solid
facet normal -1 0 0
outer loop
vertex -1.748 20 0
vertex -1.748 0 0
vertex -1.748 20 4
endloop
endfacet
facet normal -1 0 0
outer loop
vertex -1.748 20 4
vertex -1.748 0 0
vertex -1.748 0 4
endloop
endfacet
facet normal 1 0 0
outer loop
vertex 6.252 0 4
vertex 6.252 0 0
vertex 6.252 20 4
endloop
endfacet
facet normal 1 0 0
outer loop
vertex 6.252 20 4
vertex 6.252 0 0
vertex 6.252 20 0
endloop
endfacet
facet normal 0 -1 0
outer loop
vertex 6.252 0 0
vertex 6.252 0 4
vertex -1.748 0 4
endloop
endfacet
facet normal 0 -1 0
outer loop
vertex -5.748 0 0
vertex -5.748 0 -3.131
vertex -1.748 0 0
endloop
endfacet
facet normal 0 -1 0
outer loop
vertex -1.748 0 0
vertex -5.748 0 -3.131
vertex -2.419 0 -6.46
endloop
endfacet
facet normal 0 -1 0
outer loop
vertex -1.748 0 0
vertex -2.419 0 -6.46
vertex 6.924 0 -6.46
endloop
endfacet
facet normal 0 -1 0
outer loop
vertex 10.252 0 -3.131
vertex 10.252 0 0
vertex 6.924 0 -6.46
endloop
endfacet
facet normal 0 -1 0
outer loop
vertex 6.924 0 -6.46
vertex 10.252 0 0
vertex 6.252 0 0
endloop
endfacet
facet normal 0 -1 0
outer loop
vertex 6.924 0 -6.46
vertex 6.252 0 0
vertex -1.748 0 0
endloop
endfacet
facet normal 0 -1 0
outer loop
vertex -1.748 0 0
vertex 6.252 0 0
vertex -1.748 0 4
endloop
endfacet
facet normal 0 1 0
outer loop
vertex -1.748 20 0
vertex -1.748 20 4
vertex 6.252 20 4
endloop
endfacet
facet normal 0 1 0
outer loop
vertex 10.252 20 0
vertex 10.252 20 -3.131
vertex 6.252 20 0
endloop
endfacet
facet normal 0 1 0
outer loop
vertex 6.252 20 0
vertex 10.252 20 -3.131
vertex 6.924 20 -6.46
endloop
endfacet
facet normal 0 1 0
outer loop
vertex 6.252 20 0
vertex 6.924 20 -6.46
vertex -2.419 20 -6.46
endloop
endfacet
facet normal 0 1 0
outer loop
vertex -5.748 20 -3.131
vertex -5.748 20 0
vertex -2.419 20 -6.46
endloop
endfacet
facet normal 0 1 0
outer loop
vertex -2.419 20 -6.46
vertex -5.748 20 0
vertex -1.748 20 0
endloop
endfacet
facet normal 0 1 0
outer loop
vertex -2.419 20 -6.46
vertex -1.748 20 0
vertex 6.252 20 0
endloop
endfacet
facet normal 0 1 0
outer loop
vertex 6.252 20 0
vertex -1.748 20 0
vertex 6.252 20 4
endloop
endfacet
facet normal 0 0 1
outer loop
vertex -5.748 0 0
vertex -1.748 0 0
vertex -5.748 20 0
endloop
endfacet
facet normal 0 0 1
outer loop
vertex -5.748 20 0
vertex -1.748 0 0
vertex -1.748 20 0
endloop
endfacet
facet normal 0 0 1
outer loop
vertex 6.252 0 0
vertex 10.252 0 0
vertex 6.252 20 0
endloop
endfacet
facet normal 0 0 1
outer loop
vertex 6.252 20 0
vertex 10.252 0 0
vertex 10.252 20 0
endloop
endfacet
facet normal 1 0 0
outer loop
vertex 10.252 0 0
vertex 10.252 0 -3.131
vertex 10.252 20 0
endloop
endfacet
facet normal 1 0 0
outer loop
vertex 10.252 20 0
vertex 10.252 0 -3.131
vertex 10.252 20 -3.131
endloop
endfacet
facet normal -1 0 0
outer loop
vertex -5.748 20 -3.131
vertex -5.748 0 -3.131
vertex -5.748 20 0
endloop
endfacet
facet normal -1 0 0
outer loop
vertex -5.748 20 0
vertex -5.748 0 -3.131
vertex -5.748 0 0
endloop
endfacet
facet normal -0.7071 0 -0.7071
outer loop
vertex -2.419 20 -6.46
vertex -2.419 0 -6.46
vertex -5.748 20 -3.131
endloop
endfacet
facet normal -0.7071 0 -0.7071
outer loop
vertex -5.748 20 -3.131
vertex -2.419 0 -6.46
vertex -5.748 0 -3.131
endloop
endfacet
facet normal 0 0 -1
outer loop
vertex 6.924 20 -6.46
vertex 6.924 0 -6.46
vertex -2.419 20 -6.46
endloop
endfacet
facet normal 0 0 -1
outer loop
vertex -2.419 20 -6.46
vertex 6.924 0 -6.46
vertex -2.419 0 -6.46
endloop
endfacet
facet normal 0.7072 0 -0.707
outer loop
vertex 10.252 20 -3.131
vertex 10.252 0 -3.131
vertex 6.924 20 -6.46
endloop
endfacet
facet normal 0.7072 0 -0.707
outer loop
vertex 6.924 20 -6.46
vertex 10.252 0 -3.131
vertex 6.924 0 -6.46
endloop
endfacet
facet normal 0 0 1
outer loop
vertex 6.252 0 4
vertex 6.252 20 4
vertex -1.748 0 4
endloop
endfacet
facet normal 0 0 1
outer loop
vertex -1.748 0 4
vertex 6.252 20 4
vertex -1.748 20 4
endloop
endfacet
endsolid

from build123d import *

# Parameters (mm, degrees)
BOSS_EXTRUDE1_DEPTH          = 40
SKETCH2_W                    = 3.5
SKETCH2_H                    = 40
BOSS_EXTRUDE2_DEPTH          = 5
SKETCH4_R                    = 2
CUT_EXTRUDE1_DEPTH           = 7
SKETCH5_R                    = 3.5
CUT_EXTRUDE2_DEPTH           = 3
CUT_EXTRUDE2_DRAFT           = -27
CUT_EXTRUDE2_PROFILE_2_DEPTH = 3
CUT_EXTRUDE2_PROFILE_2_DRAFT = -27
BOSS_EXTRUDE3_DEPTH          = 3
SKETCH9_W                    = 13
SKETCH9_H                    = 40
CUT_EXTRUDE4_DEPTH           = 4.702585656
SKETCH10_W                   = 15
SKETCH10_H                   = 40
BOSS_EXTRUDE4_DEPTH          = 2.5
SKETCH11_W                   = 1.5
SKETCH11_H                   = 2.202585656
BOSS_EXTRUDE7_DEPTH          = 40
BOSS_EXTRUDE8_DEPTH          = 0.625841469
SKETCH13_R                   = 2
CUT_EXTRUDE5_DEPTH           = 10
SKETCH14_W                   = 2.5
SKETCH14_H                   = 40
BOSS_EXTRUDE9_DEPTH          = 0.5
SKETCH15_W                   = 2.5
SKETCH15_H                   = 40
BOSS_EXTRUDE10_DEPTH         = 0.5
BOSS_EXTRUDE11_DEPTH         = 40
BOSS_EXTRUDE12_DEPTH         = 1.13137085
SKETCH18_R                   = 2
CUT_EXTRUDE6_DEPTH           = 10
SKETCH19_R                   = 3
CUT_EXTRUDE7_DEPTH           = 3
CUT_EXTRUDE7_DRAFT           = -19
CUT_EXTRUDE7_PROFILE_2_DEPTH = 3
CUT_EXTRUDE7_PROFILE_2_DRAFT = -19
SKETCH20_W                   = 5
SKETCH20_H                   = 40
BOSS_EXTRUDE13_DEPTH         = 0.5
SKETCH21_W                   = 5
SKETCH21_H                   = 40
BOSS_EXTRUDE14_DEPTH         = 0.5
SKETCH22_W                   = 7
SKETCH22_H                   = 6.5
SKETCH22_W_2                 = 7.5
CUT_EXTRUDE8_DEPTH           = 20
SKETCH23_R                   = 2
BOSS_EXTRUDE15_DEPTH         = 6.459797975
SKETCH24_R                   = 3
BOSS_EXTRUDE16_DEPTH         = 11.459797975
SKETCH25_W                   = 4
SKETCH25_H                   = 20
CUT_EXTRUDE9_DEPTH           = 20
SKETCH26_W                   = 8
SKETCH26_H                   = 20
CUT_EXTRUDE10_DEPTH          = 1


with BuildPart() as part:
    # Sketch1 → Boss-Extrude1 (new body)
    with BuildSketch(Plane(origin=(0, 0, 0), x_dir=(1, 0, 0), z_dir=(0, 1, 0))):
        Polygon((-4.247892457, 4.702585656), (8.752107543, 4.702585656), (8.752107543, 1.702585656), (7.049521887, 0), (-2.545306801, 0), (-4.247892457, 1.702585656), align=None)
    extrude(amount=BOSS_EXTRUDE1_DEPTH)

    # Sketch2 → Boss-Extrude2 (add)
    with BuildSketch(Plane.XY):
        with Locations((4.002107543, 20)):
            Rectangle(SKETCH2_W, SKETCH2_H)
        with Locations((0.502107543, 20)):
            Rectangle(SKETCH2_W, SKETCH2_H)
    extrude(amount=BOSS_EXTRUDE2_DEPTH)

    # Sketch4 → Cut-Extrude1 (cut)
    with BuildSketch(Plane.XY.offset(5)):
        with Locations((2.252107543, 30)):
            Circle(SKETCH4_R)
        with Locations((2.252107543, 10)):
            Circle(SKETCH4_R)
    extrude(amount=-CUT_EXTRUDE1_DEPTH, mode=Mode.SUBTRACT)


with BuildPart() as cut_extrude2_tool:
    # Sketch5 → Cut-Extrude2 (with draft: the straight prism first)
    with BuildSketch(Plane(origin=(0, 0, -4.702585656), x_dir=(-1, 0, 0), z_dir=(0, 0, -1))):
        with Locations((-2.252107543, 30)):
            Circle(SKETCH5_R)
    extrude(amount=-CUT_EXTRUDE2_DEPTH)
    # Cut-Extrude2: the draft: its side faces are tilted about the plane it starts from
    cut_extrude2_sides = [cut_extrude2_tool.faces().sort_by_distance(p)[0] for p in [
        (5.752107543, 30, -3.202585656),
    ]]
    draft(cut_extrude2_sides, Plane(origin=(0, 0, -4.702585656), x_dir=(-1, 0, 0), z_dir=(0, 0, -1)), CUT_EXTRUDE2_DRAFT)


with BuildPart() as part_1:
    add(part.part)

    # Cut-Extrude2: cut by cut_extrude2_tool
    add(cut_extrude2_tool.part, mode=Mode.SUBTRACT)


with BuildPart() as cut_extrude2_profile_2_tool:
    # Sketch5 → Cut-Extrude2 profile 2 (with draft: the straight prism first)
    with BuildSketch(Plane(origin=(0, 0, -4.702585656), x_dir=(-1, 0, 0), z_dir=(0, 0, -1))):
        with Locations((-2.252107543, 10)):
            Circle(SKETCH5_R)
    extrude(amount=-CUT_EXTRUDE2_PROFILE_2_DEPTH)
    # Cut-Extrude2 profile 2: the draft: its side faces are tilted about the plane it starts from
    cut_extrude2_profile_2_sides = [cut_extrude2_profile_2_tool.faces().sort_by_distance(p)[0] for p in [
        (5.752107543, 10, -3.202585656),
    ]]
    draft(cut_extrude2_profile_2_sides, Plane(origin=(0, 0, -4.702585656), x_dir=(-1, 0, 0), z_dir=(0, 0, -1)), CUT_EXTRUDE2_PROFILE_2_DRAFT)


with BuildPart() as part_2:
    add(part_1.part)

    # Cut-Extrude2 profile 2: cut by cut_extrude2_profile_2_tool
    add(cut_extrude2_profile_2_tool.part, mode=Mode.SUBTRACT)

    # Sketch7 → Boss-Extrude3 (add)
    with BuildSketch(Plane(origin=(0, 0, -4.702585656), x_dir=(-1, 0, 0), z_dir=(0, 0, -1))):
        Polygon((1.247892457, 46.5), (-5.752107543, 46.5), (-5.752107543, 40), (-4.252107543, 40), (-4.252107543, 45), (-0.252107543, 45), (-0.252107543, 43.275204256), (-0.252107543, 40), (1.247892457, 40), align=None)
        Polygon((-4.252107543, 0), (-5.752107543, 0), (-5.752107543, -6.5), (1.247892457, -6.5), (1.247892457, 0), (-0.252107543, 0), (-0.252107543, -5), (-4.252107543, -5), align=None)
    extrude(amount=-BOSS_EXTRUDE3_DEPTH)

    # Sketch9 → Cut-Extrude4 (cut)
    with BuildSketch(Plane(origin=(0, 0, -4.702585656), x_dir=(-1, 0, 0), z_dir=(0, 0, -1))):
        with Locations((-2.252107543, 20)):
            Rectangle(SKETCH9_W, SKETCH9_H)
    extrude(amount=-CUT_EXTRUDE4_DEPTH, mode=Mode.SUBTRACT)


with BuildPart() as cut_extrude4_piece_1:
    # of the separate pieces the step leaves, piece 1, a body of its own (cut_extrude4_pieces)
    add(part_2.part.solids().sort_by_distance((-1.247892457, 0, 0))[0])



with BuildPart() as cut_extrude4_piece_2:
    # of the separate pieces the step leaves, piece 2, a body of its own (cut_extrude4_pieces)
    add(part_2.part.solids().sort_by_distance((0.252107543, 40, -4.702585656))[0])


with BuildPart() as cut_extrude4_piece_3:
    # of the separate pieces the step leaves, piece 3, a body of its own (cut_extrude4_pieces)
    add(part_2.part.solids().sort_by_distance((-1.247892457, -6.5, -4.702585656))[0])


with BuildPart() as cut_extrude4_piece_1_1:
    add(cut_extrude4_piece_1.part)

    add(cut_extrude4_piece_2.part)  # Boss-Extrude4 merges Cut-Extrude4 piece 2

    add(cut_extrude4_piece_3.part)  # Boss-Extrude4 merges Cut-Extrude4 piece 3
    # Sketch10 → Boss-Extrude4 (add)
    with BuildSketch(Plane(origin=(0, 0, 0), x_dir=(-1, 0, 0), z_dir=(0, 0, -1))):
        with Locations((-2.252107543, 20)):
            Rectangle(SKETCH10_W, SKETCH10_H)
    extrude(amount=BOSS_EXTRUDE4_DEPTH)

    # Sketch11 → Boss-Extrude7 (add)
    with BuildSketch(Plane(origin=(0, 0, 0), x_dir=(1, 0, 0), z_dir=(0, 1, 0))):
        with Locations((5.002107543, 3.601292828)):
            Rectangle(SKETCH11_W, SKETCH11_H)
        Polygon((-2.419465332, 5.328427125), (-5.247892457, 2.5), (4.252107543, 2.5), (4.252107543, 4.702585656), (5.752107543, 4.702585656), (5.752107543, 2.5), (9.752107543, 2.5), (6.923680418, 5.328427125), align=None)
    extrude(amount=BOSS_EXTRUDE7_DEPTH)

    # Sketch12 → Boss-Extrude8 (add)
    with BuildSketch(Plane(origin=(0, 0, -4.702585656), x_dir=(-1, 0, 0), z_dir=(0, 0, -1))):
        Polygon((-5.752107543, 0), (-5.752107543, -6.5), (1.247892457, -6.5), (1.247892457, 0), (-0.252107543, 0), (-0.252107543, -5), (-4.252107543, -5), (-4.252107543, 0), align=None)
        Polygon((1.247892457, 46.5), (-5.752107543, 46.5), (-5.752107543, 40), (-4.252107543, 40), (-4.252107543, 45), (-0.252107543, 45), (-0.252107543, 40), (1.247892457, 40), align=None)
    extrude(amount=BOSS_EXTRUDE8_DEPTH)

    # Sketch13 → Cut-Extrude5 (cut)
    with BuildSketch(Plane.XY):
        with Locations((2.252107543, 30)):
            Circle(SKETCH13_R)
        with Locations((2.252107543, 10)):
            Circle(SKETCH13_R)
    extrude(amount=-CUT_EXTRUDE5_DEPTH, mode=Mode.SUBTRACT)

    # Sketch14 → Boss-Extrude9 (add)
    with BuildSketch(Plane(origin=(9.752107543, 0, 0), x_dir=(0, 0, -1), z_dir=(1, 0, 0))):
        with Locations((1.25, 20)):
            Rectangle(SKETCH14_W, SKETCH14_H)
    extrude(amount=BOSS_EXTRUDE9_DEPTH)

    # Sketch15 → Boss-Extrude10 (add)
    with BuildSketch(Plane.ZY.offset(5.247892457)):
        with Locations((-1.25, 20)):
            Rectangle(SKETCH15_W, SKETCH15_H)
    extrude(amount=BOSS_EXTRUDE10_DEPTH)

    # Sketch16 → Boss-Extrude11 (add)
    with BuildSketch(Plane.XZ):
        Polygon((-2.419465332, -5.328427125), (-5.247892457, -2.5), (-5.747892457, -2.5), (-5.747892457, -3.13137085), (-2.419465332, -6.459797975), (6.923680418, -6.459797975), (10.252107543, -3.13137085), (10.252107543, -2.5), (9.752107543, -2.5), (6.923680418, -5.328427125), (0.656985658, -5.328427125), align=None)
    extrude(amount=-BOSS_EXTRUDE11_DEPTH)

    # Sketch17 → Boss-Extrude12 (add)
    with BuildSketch(Plane(origin=(0, 0, -5.328427125), x_dir=(-1, 0, 0), z_dir=(0, 0, -1))):
        Polygon((-5.752107543, 0), (-5.752107543, -6.5), (1.247892457, -6.5), (1.247892457, 0), (0, 0), (0, -5), (-0.252107543, -5), (-4.252107543, -5), (-4.252107543, 0), align=None)
        Polygon((1.247892457, 46.5), (-5.752107543, 46.5), (-5.752107543, 40), (-4.252107543, 40), (-4.252107543, 44.953142187), (-0.252107543, 44.953142187), (-0.252107543, 40), (1.247892457, 40), align=None)
    extrude(amount=BOSS_EXTRUDE12_DEPTH)

    # Sketch18 → Cut-Extrude6 (cut)
    with BuildSketch(Plane.XY.offset(-5.328427125)):
        with Locations((2.252107543, 30)):
            Circle(SKETCH18_R)
        with Locations((2.252107543, 10)):
            Circle(SKETCH18_R)
    extrude(amount=-CUT_EXTRUDE6_DEPTH, mode=Mode.SUBTRACT)


with BuildPart() as cut_extrude7_tool:
    # Sketch19 → Cut-Extrude7 (with draft: the straight prism first)
    with BuildSketch(Plane(origin=(0, 0, -6.459797975), x_dir=(-1, 0, 0), z_dir=(0, 0, -1))):
        with Locations((-2.252107543, 30)):
            Circle(SKETCH19_R)
    extrude(amount=-CUT_EXTRUDE7_DEPTH)
    # Cut-Extrude7: the draft: its side faces are tilted about the plane it starts from
    cut_extrude7_sides = [cut_extrude7_tool.faces().sort_by_distance(p)[0] for p in [
        (5.252107543, 30, -4.959797975),
    ]]
    draft(cut_extrude7_sides, Plane(origin=(0, 0, -6.459797975), x_dir=(-1, 0, 0), z_dir=(0, 0, -1)), CUT_EXTRUDE7_DRAFT)


with BuildPart() as cut_extrude4_piece_1_2:
    add(cut_extrude4_piece_1_1.part)

    # Cut-Extrude7: cut by cut_extrude7_tool
    add(cut_extrude7_tool.part, mode=Mode.SUBTRACT)


with BuildPart() as cut_extrude7_profile_2_tool:
    # Sketch19 → Cut-Extrude7 profile 2 (with draft: the straight prism first)
    with BuildSketch(Plane(origin=(0, 0, -6.459797975), x_dir=(-1, 0, 0), z_dir=(0, 0, -1))):
        with Locations((-2.252107543, 10)):
            Circle(SKETCH19_R)
    extrude(amount=-CUT_EXTRUDE7_PROFILE_2_DEPTH)
    # Cut-Extrude7 profile 2: the draft: its side faces are tilted about the plane it starts from
    cut_extrude7_profile_2_sides = [cut_extrude7_profile_2_tool.faces().sort_by_distance(p)[0] for p in [
        (5.252107543, 10, -4.959797975),
    ]]
    draft(cut_extrude7_profile_2_sides, Plane(origin=(0, 0, -6.459797975), x_dir=(-1, 0, 0), z_dir=(0, 0, -1)), CUT_EXTRUDE7_PROFILE_2_DRAFT)


with BuildPart() as cut_extrude4_piece_1_3:
    add(cut_extrude4_piece_1_2.part)

    # Cut-Extrude7 profile 2: cut by cut_extrude7_profile_2_tool
    add(cut_extrude7_profile_2_tool.part, mode=Mode.SUBTRACT)

    # Sketch20 → Boss-Extrude13 (add)
    with BuildSketch(Plane.ZY.offset(1.247892457)):
        with Locations((2.5, 20)):
            Rectangle(SKETCH20_W, SKETCH20_H)
    extrude(amount=BOSS_EXTRUDE13_DEPTH)

    # Sketch21 → Boss-Extrude14 (add)
    with BuildSketch(Plane(origin=(5.752107543, 0, 0), x_dir=(0, 0, -1), z_dir=(1, 0, 0))):
        with Locations((-2.5, 20)):
            Rectangle(SKETCH21_W, SKETCH21_H)
    extrude(amount=BOSS_EXTRUDE14_DEPTH)

    # Sketch22 → Cut-Extrude8 (cut)
    with BuildSketch(Plane.XY.offset(5)):
        with Locations((2.252107543, 43.25)):
            Rectangle(SKETCH22_W, SKETCH22_H)
        with Locations((2.502107543, -3.25)):
            Rectangle(SKETCH22_W_2, SKETCH22_H)
    extrude(amount=-CUT_EXTRUDE8_DEPTH, mode=Mode.SUBTRACT)

    # Sketch23 → Boss-Extrude15 (add)
    with BuildSketch(Plane.XY):
        with Locations((2.252107543, 10)):
            Circle(SKETCH23_R)
        with Locations((2.252107543, 30)):
            Circle(SKETCH23_R)
    extrude(amount=-BOSS_EXTRUDE15_DEPTH)

    # Sketch24 → Boss-Extrude16 (add)
    with BuildSketch(Plane(origin=(0, 0, -6.459797975), x_dir=(-1, 0, 0), z_dir=(0, 0, -1))):
        with Locations((-2.252107543, 30)):
            Circle(SKETCH24_R)
        with Locations((-2.252107543, 10)):
            Circle(SKETCH24_R)
    extrude(amount=-BOSS_EXTRUDE16_DEPTH)

    # Sketch25 → Cut-Extrude9 (cut)
    with BuildSketch(Plane.XY.offset(5)):
        Polygon((6.252107543, 20.358230215), (6.252107543, 20), (10.252107543, 20), (10.252107543, 40), (6.252107543, 40), align=None)
        Polygon((-1.747892457, 20), (6.252107543, 20), (6.252107543, 20.358230215), (6.252107543, 40), (-1.747892457, 40), align=None)
        with Locations((-3.747892457, 30)):
            Rectangle(SKETCH25_W, SKETCH25_H)
    extrude(amount=-CUT_EXTRUDE9_DEPTH, mode=Mode.SUBTRACT)

    # Sketch26 → Cut-Extrude10 (cut)
    with BuildSketch(Plane.XY.offset(5)):
        with Locations((2.252107543, 10)):
            Rectangle(SKETCH26_W, SKETCH26_H)
    extrude(amount=-CUT_EXTRUDE10_DEPTH, mode=Mode.SUBTRACT)


solid = cut_extrude4_piece_1_3.part
